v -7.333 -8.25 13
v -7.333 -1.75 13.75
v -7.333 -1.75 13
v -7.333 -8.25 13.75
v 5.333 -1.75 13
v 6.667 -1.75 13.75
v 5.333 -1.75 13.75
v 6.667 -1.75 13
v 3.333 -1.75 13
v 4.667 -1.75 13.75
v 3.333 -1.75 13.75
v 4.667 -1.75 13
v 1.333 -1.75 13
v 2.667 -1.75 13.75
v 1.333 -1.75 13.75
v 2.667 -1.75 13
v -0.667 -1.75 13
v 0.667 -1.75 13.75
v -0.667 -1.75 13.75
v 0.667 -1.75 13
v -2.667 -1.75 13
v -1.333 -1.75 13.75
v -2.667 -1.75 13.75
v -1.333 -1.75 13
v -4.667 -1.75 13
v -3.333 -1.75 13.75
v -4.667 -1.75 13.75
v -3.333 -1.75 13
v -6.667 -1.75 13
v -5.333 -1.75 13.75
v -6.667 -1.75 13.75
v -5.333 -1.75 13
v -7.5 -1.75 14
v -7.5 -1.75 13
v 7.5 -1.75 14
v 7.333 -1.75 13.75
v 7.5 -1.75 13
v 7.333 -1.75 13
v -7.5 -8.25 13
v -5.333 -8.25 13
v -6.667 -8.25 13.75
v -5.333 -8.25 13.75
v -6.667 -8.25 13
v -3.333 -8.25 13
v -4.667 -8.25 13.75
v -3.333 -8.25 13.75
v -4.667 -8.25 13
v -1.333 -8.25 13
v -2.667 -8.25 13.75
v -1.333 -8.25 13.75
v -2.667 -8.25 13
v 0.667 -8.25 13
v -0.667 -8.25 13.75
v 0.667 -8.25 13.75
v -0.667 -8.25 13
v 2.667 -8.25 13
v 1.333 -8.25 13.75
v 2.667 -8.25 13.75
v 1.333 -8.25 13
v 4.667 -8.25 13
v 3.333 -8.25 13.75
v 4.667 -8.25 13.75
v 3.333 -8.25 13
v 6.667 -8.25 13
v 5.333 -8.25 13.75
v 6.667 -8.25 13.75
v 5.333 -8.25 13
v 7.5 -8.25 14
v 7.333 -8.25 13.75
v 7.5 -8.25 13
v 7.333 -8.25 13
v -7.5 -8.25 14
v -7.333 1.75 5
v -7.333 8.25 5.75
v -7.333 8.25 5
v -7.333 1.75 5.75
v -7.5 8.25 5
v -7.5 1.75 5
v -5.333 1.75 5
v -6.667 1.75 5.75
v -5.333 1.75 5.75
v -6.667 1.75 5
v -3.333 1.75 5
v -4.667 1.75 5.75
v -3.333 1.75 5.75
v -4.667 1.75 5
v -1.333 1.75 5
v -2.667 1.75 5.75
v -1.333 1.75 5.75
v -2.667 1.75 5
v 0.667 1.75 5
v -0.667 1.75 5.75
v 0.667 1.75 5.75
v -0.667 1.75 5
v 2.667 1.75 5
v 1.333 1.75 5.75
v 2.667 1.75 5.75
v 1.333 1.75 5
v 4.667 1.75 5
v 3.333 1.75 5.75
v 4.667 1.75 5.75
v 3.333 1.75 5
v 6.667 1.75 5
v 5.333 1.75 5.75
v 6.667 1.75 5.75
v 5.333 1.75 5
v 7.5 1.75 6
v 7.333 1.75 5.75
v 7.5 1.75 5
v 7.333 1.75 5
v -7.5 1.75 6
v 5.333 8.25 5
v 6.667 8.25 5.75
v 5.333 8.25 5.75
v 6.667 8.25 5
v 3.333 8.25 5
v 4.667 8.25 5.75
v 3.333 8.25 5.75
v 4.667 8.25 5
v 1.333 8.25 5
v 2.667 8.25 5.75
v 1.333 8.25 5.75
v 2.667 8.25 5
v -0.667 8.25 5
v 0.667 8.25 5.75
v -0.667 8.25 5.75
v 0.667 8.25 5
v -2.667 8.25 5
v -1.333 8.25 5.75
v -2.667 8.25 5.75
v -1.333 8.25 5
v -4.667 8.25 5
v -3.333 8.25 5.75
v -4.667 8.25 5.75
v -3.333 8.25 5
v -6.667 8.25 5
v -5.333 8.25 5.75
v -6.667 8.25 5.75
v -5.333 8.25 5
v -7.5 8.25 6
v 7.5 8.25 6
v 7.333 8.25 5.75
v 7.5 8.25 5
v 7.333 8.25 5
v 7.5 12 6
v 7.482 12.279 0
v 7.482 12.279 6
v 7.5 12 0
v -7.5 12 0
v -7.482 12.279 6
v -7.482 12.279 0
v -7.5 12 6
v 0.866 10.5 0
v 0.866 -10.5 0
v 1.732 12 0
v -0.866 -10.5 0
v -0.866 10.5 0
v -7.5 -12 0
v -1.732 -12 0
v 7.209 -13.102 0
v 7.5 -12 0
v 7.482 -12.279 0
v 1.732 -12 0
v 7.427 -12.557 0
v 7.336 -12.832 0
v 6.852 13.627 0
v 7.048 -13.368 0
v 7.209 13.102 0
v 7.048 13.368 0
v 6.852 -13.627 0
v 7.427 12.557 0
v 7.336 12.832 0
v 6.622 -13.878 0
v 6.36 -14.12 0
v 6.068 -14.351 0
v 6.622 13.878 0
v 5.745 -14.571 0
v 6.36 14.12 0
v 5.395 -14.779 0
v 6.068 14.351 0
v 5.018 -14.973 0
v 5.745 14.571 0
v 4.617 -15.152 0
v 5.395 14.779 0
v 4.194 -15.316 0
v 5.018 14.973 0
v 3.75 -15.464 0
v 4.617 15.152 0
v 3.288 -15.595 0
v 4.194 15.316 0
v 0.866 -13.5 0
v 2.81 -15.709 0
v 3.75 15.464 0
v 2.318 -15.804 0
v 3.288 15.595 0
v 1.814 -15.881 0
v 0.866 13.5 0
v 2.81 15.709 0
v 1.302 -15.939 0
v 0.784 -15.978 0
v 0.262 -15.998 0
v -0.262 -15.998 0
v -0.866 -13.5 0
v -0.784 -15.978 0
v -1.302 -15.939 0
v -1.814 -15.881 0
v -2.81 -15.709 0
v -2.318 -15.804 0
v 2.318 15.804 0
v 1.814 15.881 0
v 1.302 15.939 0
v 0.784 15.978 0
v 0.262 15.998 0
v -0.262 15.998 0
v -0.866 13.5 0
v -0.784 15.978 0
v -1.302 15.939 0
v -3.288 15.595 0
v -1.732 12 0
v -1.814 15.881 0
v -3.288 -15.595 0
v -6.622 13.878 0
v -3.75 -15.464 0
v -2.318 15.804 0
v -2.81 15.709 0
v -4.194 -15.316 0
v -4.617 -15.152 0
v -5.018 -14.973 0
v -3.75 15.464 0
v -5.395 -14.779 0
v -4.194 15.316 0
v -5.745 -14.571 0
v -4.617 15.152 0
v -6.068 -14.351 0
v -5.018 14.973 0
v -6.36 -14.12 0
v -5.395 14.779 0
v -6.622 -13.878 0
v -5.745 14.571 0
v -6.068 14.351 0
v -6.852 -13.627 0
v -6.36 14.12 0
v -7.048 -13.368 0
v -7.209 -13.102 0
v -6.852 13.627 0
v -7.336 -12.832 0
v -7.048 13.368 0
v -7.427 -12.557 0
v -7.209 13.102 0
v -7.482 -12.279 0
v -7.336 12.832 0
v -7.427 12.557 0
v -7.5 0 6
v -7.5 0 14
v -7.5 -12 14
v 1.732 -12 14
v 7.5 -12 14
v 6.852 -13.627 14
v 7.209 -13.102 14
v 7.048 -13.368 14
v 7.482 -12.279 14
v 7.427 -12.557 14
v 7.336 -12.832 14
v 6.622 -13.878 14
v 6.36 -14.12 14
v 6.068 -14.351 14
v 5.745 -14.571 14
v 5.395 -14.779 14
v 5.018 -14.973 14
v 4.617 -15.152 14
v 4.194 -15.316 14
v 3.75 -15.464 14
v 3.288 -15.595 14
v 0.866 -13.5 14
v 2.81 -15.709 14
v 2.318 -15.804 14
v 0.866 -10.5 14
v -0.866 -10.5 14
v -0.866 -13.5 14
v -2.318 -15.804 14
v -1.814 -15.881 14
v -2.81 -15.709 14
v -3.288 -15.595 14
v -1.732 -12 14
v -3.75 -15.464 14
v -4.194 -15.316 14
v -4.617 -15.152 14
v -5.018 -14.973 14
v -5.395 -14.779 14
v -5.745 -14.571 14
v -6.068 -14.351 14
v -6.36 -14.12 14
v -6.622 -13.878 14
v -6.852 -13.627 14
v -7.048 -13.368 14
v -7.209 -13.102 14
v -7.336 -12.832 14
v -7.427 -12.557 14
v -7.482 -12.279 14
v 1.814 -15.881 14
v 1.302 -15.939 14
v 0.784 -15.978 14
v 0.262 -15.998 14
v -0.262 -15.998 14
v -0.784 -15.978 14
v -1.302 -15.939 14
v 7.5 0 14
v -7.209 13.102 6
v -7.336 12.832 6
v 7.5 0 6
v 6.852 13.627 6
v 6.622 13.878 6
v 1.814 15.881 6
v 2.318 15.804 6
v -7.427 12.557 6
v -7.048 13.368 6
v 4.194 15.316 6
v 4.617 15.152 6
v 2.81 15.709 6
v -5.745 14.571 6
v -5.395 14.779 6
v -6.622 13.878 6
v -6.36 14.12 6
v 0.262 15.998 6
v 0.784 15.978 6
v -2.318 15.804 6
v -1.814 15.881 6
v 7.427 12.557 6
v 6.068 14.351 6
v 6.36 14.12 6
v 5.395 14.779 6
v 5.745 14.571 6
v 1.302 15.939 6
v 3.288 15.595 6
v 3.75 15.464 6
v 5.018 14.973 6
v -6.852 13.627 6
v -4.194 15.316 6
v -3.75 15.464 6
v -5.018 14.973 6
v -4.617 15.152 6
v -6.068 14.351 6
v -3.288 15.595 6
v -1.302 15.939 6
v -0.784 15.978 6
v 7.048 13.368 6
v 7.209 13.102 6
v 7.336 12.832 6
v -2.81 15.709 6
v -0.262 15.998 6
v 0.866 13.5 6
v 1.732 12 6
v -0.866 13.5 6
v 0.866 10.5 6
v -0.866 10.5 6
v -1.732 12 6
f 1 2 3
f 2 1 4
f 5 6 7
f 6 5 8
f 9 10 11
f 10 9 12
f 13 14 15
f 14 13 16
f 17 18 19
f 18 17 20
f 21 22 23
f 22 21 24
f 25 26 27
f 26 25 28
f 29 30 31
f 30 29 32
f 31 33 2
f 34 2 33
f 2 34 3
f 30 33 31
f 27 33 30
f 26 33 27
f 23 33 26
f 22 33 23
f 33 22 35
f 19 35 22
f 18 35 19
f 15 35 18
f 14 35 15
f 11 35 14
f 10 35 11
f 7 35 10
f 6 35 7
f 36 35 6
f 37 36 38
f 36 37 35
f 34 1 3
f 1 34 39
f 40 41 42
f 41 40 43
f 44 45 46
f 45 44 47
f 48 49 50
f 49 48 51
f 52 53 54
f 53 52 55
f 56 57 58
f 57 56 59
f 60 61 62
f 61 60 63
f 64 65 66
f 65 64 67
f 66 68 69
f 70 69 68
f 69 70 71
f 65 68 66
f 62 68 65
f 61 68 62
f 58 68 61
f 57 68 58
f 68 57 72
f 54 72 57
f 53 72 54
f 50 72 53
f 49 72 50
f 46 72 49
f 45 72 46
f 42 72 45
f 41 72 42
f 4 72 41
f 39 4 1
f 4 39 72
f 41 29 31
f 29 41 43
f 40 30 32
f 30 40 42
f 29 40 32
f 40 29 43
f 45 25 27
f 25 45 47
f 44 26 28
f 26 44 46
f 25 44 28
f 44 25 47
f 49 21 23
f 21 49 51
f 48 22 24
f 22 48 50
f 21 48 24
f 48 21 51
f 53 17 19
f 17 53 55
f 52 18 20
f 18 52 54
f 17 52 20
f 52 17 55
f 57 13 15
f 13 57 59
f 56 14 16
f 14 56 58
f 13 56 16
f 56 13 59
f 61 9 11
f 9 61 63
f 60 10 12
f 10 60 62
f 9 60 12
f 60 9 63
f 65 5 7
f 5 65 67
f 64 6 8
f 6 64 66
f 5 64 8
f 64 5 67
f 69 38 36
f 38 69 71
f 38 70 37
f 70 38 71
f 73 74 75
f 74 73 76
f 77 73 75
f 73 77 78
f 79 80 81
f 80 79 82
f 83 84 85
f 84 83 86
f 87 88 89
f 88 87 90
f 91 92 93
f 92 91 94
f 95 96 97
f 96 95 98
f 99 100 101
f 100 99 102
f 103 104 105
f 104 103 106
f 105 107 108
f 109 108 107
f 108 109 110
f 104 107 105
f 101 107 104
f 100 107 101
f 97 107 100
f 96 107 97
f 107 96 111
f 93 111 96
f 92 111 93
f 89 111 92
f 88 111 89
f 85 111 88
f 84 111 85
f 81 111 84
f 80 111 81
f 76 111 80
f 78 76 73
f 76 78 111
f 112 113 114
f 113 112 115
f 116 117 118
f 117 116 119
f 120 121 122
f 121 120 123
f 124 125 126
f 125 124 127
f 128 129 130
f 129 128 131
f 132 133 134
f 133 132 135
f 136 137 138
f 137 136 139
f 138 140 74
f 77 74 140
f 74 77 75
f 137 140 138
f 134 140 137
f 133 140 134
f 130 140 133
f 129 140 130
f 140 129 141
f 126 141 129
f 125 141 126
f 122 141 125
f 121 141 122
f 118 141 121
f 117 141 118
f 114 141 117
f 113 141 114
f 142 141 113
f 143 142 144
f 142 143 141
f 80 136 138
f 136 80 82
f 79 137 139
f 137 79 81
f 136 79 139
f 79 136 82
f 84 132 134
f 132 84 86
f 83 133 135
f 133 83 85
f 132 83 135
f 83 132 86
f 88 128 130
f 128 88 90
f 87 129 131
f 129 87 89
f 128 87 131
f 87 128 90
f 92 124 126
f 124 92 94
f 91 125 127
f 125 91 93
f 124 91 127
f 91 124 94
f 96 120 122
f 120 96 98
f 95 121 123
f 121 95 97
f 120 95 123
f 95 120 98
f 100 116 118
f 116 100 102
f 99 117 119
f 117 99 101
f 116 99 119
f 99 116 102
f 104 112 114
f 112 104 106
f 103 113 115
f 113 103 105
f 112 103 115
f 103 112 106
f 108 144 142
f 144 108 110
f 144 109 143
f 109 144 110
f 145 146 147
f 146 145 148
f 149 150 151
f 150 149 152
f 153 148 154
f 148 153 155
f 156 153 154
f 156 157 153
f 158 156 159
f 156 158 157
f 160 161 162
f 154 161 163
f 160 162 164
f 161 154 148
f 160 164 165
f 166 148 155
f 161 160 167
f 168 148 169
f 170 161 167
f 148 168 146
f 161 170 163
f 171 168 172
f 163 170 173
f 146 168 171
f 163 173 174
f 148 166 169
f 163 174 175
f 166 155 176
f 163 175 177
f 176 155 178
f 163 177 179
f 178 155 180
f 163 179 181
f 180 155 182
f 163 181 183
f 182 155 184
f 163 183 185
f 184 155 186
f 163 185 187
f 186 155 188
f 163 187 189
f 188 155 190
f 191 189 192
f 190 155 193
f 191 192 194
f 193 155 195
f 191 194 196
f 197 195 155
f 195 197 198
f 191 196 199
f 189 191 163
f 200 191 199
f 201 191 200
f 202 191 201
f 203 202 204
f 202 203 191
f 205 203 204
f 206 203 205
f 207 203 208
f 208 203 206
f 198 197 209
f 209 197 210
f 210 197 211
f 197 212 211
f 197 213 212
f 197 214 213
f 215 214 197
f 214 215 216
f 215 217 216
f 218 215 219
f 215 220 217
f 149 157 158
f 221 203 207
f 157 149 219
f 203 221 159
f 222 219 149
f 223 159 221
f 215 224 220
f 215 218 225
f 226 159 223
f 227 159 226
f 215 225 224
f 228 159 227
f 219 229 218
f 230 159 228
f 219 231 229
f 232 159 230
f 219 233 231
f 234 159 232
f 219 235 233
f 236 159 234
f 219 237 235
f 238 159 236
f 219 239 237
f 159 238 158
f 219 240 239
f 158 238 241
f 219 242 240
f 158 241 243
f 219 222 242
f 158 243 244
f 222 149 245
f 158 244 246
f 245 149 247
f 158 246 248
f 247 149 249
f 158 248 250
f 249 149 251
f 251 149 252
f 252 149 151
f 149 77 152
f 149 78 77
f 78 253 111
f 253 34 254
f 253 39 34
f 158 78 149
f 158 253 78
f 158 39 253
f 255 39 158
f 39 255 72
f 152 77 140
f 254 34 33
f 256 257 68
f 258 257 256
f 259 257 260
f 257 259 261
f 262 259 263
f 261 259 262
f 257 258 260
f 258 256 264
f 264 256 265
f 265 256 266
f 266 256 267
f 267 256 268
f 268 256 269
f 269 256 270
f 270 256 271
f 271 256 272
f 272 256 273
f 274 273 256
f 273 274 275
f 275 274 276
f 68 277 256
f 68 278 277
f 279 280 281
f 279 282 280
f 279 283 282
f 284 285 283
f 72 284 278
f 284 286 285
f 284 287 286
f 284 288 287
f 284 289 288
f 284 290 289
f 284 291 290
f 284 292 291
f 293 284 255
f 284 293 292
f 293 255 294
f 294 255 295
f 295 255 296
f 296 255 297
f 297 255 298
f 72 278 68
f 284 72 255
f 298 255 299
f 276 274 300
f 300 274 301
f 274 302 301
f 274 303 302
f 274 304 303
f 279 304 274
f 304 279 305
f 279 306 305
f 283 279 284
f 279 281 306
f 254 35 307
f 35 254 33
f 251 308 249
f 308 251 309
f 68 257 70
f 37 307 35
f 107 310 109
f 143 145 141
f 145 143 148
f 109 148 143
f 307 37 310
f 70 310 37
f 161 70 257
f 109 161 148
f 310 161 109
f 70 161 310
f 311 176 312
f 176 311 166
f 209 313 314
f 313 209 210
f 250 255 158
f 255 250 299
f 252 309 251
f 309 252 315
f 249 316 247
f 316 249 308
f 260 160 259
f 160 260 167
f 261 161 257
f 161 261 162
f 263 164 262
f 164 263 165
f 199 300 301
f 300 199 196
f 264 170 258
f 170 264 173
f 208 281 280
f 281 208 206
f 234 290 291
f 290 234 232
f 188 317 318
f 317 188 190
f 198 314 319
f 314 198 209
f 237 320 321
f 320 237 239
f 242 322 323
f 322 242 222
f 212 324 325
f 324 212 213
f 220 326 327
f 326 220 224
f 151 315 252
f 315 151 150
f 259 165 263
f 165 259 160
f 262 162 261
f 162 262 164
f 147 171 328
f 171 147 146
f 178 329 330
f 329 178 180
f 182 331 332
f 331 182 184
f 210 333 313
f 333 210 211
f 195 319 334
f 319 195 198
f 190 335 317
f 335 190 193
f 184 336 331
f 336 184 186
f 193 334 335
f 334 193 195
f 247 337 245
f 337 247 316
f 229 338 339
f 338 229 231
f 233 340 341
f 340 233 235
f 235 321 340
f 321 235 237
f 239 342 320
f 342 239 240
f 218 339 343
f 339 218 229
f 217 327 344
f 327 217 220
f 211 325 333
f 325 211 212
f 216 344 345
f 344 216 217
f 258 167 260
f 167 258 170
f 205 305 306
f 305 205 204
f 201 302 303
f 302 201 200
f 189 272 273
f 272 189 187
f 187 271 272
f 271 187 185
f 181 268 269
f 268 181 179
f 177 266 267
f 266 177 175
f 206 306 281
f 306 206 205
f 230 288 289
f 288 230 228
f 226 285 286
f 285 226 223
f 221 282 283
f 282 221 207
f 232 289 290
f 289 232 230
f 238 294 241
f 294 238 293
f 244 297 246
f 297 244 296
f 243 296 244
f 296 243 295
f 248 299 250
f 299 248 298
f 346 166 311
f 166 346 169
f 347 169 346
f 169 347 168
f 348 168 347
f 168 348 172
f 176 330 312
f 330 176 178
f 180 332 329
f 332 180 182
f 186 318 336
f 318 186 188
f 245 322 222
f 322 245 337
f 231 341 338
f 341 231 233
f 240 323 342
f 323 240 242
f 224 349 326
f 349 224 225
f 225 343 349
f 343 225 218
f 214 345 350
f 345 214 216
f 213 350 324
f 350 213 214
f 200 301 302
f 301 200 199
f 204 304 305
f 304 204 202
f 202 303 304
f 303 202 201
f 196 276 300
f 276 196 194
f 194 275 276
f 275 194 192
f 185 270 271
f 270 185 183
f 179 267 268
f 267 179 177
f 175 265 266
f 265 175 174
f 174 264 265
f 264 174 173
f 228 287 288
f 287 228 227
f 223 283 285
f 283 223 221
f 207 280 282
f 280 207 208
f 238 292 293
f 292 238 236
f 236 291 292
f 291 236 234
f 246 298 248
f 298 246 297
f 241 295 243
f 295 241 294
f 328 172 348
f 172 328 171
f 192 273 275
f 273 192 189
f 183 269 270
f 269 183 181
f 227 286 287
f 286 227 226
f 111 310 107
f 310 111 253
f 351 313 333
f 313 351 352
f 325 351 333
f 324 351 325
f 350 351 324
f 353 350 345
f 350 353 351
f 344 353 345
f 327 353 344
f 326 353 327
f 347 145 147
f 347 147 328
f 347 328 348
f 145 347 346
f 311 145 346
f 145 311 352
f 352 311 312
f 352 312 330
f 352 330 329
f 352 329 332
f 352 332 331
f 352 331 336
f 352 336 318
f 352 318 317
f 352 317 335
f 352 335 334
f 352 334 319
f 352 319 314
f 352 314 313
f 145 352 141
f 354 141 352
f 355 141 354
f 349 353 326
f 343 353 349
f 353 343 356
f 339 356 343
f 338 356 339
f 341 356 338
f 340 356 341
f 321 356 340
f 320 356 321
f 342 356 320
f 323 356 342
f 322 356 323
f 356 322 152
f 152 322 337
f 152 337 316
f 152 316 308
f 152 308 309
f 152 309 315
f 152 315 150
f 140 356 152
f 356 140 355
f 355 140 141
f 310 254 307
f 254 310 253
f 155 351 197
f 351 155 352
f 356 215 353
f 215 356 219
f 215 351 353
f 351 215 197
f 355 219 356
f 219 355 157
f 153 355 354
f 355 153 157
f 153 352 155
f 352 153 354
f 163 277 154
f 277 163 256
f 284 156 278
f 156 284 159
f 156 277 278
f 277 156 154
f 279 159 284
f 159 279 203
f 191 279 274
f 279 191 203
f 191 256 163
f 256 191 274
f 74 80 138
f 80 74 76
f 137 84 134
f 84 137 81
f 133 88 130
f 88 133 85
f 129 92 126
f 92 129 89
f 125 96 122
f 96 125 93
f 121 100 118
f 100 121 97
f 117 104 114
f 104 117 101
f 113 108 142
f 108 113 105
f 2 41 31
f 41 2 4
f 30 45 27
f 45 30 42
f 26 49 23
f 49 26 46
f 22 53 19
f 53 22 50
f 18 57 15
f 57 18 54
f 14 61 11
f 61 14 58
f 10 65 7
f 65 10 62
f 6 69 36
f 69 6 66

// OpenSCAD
// file: polyhole.scad
// The Cylinder is dead! Long live the Cylinder!
// A module for a polyhole by radius, based on Nophead's work.

module polyhole(h, r, cent = false)
{
    n = max(round(4 * r), 3);
    cylinder(h = h, r = r / cos(180 / n), $fn = n, center = cent);
}
// main file
// Belt Clamp

use<polyhole.scad>

BeltClamp();

module BeltClamp()
{
    difference()
    {
        union()
        {
            hull()
            {
                translate([0, 12, 0])
                    scale([15, 8, 14])
                        cylinder(h = 1, r = 0.5, $fn = 90);
                translate([0, -12, 0])
                    scale([15, 8, 14])
                        cylinder(h = 1, r = 0.5, $fn = 90);
            }
        }
        translate([0, (60-26)/4, 10])
            cube([15, (60-26)/2, 8], center = true);
        translate([0, 12, 0])
            polyhole(20, 1.5);
        translate([0, -12, 0])
            polyhole(20, 1.5);
        translate([0, 5, 6])
            cube([15, 6.5, 0.5], center = true);
        translate([0, -5, 14])
            cube([15, 6.5, 0.5], center = true);
        for(i = [-8 : 2 : 8])
            translate([i, -5, 14])
                cube([4/3, 6.5, 0.5+2*0.75], center = true);
        for(i = [-8 : 2 : 8])
            translate([i, 5, 6])
                cube([4/3, 6.5, 0.5+2*0.75], center = true);
    }
}
